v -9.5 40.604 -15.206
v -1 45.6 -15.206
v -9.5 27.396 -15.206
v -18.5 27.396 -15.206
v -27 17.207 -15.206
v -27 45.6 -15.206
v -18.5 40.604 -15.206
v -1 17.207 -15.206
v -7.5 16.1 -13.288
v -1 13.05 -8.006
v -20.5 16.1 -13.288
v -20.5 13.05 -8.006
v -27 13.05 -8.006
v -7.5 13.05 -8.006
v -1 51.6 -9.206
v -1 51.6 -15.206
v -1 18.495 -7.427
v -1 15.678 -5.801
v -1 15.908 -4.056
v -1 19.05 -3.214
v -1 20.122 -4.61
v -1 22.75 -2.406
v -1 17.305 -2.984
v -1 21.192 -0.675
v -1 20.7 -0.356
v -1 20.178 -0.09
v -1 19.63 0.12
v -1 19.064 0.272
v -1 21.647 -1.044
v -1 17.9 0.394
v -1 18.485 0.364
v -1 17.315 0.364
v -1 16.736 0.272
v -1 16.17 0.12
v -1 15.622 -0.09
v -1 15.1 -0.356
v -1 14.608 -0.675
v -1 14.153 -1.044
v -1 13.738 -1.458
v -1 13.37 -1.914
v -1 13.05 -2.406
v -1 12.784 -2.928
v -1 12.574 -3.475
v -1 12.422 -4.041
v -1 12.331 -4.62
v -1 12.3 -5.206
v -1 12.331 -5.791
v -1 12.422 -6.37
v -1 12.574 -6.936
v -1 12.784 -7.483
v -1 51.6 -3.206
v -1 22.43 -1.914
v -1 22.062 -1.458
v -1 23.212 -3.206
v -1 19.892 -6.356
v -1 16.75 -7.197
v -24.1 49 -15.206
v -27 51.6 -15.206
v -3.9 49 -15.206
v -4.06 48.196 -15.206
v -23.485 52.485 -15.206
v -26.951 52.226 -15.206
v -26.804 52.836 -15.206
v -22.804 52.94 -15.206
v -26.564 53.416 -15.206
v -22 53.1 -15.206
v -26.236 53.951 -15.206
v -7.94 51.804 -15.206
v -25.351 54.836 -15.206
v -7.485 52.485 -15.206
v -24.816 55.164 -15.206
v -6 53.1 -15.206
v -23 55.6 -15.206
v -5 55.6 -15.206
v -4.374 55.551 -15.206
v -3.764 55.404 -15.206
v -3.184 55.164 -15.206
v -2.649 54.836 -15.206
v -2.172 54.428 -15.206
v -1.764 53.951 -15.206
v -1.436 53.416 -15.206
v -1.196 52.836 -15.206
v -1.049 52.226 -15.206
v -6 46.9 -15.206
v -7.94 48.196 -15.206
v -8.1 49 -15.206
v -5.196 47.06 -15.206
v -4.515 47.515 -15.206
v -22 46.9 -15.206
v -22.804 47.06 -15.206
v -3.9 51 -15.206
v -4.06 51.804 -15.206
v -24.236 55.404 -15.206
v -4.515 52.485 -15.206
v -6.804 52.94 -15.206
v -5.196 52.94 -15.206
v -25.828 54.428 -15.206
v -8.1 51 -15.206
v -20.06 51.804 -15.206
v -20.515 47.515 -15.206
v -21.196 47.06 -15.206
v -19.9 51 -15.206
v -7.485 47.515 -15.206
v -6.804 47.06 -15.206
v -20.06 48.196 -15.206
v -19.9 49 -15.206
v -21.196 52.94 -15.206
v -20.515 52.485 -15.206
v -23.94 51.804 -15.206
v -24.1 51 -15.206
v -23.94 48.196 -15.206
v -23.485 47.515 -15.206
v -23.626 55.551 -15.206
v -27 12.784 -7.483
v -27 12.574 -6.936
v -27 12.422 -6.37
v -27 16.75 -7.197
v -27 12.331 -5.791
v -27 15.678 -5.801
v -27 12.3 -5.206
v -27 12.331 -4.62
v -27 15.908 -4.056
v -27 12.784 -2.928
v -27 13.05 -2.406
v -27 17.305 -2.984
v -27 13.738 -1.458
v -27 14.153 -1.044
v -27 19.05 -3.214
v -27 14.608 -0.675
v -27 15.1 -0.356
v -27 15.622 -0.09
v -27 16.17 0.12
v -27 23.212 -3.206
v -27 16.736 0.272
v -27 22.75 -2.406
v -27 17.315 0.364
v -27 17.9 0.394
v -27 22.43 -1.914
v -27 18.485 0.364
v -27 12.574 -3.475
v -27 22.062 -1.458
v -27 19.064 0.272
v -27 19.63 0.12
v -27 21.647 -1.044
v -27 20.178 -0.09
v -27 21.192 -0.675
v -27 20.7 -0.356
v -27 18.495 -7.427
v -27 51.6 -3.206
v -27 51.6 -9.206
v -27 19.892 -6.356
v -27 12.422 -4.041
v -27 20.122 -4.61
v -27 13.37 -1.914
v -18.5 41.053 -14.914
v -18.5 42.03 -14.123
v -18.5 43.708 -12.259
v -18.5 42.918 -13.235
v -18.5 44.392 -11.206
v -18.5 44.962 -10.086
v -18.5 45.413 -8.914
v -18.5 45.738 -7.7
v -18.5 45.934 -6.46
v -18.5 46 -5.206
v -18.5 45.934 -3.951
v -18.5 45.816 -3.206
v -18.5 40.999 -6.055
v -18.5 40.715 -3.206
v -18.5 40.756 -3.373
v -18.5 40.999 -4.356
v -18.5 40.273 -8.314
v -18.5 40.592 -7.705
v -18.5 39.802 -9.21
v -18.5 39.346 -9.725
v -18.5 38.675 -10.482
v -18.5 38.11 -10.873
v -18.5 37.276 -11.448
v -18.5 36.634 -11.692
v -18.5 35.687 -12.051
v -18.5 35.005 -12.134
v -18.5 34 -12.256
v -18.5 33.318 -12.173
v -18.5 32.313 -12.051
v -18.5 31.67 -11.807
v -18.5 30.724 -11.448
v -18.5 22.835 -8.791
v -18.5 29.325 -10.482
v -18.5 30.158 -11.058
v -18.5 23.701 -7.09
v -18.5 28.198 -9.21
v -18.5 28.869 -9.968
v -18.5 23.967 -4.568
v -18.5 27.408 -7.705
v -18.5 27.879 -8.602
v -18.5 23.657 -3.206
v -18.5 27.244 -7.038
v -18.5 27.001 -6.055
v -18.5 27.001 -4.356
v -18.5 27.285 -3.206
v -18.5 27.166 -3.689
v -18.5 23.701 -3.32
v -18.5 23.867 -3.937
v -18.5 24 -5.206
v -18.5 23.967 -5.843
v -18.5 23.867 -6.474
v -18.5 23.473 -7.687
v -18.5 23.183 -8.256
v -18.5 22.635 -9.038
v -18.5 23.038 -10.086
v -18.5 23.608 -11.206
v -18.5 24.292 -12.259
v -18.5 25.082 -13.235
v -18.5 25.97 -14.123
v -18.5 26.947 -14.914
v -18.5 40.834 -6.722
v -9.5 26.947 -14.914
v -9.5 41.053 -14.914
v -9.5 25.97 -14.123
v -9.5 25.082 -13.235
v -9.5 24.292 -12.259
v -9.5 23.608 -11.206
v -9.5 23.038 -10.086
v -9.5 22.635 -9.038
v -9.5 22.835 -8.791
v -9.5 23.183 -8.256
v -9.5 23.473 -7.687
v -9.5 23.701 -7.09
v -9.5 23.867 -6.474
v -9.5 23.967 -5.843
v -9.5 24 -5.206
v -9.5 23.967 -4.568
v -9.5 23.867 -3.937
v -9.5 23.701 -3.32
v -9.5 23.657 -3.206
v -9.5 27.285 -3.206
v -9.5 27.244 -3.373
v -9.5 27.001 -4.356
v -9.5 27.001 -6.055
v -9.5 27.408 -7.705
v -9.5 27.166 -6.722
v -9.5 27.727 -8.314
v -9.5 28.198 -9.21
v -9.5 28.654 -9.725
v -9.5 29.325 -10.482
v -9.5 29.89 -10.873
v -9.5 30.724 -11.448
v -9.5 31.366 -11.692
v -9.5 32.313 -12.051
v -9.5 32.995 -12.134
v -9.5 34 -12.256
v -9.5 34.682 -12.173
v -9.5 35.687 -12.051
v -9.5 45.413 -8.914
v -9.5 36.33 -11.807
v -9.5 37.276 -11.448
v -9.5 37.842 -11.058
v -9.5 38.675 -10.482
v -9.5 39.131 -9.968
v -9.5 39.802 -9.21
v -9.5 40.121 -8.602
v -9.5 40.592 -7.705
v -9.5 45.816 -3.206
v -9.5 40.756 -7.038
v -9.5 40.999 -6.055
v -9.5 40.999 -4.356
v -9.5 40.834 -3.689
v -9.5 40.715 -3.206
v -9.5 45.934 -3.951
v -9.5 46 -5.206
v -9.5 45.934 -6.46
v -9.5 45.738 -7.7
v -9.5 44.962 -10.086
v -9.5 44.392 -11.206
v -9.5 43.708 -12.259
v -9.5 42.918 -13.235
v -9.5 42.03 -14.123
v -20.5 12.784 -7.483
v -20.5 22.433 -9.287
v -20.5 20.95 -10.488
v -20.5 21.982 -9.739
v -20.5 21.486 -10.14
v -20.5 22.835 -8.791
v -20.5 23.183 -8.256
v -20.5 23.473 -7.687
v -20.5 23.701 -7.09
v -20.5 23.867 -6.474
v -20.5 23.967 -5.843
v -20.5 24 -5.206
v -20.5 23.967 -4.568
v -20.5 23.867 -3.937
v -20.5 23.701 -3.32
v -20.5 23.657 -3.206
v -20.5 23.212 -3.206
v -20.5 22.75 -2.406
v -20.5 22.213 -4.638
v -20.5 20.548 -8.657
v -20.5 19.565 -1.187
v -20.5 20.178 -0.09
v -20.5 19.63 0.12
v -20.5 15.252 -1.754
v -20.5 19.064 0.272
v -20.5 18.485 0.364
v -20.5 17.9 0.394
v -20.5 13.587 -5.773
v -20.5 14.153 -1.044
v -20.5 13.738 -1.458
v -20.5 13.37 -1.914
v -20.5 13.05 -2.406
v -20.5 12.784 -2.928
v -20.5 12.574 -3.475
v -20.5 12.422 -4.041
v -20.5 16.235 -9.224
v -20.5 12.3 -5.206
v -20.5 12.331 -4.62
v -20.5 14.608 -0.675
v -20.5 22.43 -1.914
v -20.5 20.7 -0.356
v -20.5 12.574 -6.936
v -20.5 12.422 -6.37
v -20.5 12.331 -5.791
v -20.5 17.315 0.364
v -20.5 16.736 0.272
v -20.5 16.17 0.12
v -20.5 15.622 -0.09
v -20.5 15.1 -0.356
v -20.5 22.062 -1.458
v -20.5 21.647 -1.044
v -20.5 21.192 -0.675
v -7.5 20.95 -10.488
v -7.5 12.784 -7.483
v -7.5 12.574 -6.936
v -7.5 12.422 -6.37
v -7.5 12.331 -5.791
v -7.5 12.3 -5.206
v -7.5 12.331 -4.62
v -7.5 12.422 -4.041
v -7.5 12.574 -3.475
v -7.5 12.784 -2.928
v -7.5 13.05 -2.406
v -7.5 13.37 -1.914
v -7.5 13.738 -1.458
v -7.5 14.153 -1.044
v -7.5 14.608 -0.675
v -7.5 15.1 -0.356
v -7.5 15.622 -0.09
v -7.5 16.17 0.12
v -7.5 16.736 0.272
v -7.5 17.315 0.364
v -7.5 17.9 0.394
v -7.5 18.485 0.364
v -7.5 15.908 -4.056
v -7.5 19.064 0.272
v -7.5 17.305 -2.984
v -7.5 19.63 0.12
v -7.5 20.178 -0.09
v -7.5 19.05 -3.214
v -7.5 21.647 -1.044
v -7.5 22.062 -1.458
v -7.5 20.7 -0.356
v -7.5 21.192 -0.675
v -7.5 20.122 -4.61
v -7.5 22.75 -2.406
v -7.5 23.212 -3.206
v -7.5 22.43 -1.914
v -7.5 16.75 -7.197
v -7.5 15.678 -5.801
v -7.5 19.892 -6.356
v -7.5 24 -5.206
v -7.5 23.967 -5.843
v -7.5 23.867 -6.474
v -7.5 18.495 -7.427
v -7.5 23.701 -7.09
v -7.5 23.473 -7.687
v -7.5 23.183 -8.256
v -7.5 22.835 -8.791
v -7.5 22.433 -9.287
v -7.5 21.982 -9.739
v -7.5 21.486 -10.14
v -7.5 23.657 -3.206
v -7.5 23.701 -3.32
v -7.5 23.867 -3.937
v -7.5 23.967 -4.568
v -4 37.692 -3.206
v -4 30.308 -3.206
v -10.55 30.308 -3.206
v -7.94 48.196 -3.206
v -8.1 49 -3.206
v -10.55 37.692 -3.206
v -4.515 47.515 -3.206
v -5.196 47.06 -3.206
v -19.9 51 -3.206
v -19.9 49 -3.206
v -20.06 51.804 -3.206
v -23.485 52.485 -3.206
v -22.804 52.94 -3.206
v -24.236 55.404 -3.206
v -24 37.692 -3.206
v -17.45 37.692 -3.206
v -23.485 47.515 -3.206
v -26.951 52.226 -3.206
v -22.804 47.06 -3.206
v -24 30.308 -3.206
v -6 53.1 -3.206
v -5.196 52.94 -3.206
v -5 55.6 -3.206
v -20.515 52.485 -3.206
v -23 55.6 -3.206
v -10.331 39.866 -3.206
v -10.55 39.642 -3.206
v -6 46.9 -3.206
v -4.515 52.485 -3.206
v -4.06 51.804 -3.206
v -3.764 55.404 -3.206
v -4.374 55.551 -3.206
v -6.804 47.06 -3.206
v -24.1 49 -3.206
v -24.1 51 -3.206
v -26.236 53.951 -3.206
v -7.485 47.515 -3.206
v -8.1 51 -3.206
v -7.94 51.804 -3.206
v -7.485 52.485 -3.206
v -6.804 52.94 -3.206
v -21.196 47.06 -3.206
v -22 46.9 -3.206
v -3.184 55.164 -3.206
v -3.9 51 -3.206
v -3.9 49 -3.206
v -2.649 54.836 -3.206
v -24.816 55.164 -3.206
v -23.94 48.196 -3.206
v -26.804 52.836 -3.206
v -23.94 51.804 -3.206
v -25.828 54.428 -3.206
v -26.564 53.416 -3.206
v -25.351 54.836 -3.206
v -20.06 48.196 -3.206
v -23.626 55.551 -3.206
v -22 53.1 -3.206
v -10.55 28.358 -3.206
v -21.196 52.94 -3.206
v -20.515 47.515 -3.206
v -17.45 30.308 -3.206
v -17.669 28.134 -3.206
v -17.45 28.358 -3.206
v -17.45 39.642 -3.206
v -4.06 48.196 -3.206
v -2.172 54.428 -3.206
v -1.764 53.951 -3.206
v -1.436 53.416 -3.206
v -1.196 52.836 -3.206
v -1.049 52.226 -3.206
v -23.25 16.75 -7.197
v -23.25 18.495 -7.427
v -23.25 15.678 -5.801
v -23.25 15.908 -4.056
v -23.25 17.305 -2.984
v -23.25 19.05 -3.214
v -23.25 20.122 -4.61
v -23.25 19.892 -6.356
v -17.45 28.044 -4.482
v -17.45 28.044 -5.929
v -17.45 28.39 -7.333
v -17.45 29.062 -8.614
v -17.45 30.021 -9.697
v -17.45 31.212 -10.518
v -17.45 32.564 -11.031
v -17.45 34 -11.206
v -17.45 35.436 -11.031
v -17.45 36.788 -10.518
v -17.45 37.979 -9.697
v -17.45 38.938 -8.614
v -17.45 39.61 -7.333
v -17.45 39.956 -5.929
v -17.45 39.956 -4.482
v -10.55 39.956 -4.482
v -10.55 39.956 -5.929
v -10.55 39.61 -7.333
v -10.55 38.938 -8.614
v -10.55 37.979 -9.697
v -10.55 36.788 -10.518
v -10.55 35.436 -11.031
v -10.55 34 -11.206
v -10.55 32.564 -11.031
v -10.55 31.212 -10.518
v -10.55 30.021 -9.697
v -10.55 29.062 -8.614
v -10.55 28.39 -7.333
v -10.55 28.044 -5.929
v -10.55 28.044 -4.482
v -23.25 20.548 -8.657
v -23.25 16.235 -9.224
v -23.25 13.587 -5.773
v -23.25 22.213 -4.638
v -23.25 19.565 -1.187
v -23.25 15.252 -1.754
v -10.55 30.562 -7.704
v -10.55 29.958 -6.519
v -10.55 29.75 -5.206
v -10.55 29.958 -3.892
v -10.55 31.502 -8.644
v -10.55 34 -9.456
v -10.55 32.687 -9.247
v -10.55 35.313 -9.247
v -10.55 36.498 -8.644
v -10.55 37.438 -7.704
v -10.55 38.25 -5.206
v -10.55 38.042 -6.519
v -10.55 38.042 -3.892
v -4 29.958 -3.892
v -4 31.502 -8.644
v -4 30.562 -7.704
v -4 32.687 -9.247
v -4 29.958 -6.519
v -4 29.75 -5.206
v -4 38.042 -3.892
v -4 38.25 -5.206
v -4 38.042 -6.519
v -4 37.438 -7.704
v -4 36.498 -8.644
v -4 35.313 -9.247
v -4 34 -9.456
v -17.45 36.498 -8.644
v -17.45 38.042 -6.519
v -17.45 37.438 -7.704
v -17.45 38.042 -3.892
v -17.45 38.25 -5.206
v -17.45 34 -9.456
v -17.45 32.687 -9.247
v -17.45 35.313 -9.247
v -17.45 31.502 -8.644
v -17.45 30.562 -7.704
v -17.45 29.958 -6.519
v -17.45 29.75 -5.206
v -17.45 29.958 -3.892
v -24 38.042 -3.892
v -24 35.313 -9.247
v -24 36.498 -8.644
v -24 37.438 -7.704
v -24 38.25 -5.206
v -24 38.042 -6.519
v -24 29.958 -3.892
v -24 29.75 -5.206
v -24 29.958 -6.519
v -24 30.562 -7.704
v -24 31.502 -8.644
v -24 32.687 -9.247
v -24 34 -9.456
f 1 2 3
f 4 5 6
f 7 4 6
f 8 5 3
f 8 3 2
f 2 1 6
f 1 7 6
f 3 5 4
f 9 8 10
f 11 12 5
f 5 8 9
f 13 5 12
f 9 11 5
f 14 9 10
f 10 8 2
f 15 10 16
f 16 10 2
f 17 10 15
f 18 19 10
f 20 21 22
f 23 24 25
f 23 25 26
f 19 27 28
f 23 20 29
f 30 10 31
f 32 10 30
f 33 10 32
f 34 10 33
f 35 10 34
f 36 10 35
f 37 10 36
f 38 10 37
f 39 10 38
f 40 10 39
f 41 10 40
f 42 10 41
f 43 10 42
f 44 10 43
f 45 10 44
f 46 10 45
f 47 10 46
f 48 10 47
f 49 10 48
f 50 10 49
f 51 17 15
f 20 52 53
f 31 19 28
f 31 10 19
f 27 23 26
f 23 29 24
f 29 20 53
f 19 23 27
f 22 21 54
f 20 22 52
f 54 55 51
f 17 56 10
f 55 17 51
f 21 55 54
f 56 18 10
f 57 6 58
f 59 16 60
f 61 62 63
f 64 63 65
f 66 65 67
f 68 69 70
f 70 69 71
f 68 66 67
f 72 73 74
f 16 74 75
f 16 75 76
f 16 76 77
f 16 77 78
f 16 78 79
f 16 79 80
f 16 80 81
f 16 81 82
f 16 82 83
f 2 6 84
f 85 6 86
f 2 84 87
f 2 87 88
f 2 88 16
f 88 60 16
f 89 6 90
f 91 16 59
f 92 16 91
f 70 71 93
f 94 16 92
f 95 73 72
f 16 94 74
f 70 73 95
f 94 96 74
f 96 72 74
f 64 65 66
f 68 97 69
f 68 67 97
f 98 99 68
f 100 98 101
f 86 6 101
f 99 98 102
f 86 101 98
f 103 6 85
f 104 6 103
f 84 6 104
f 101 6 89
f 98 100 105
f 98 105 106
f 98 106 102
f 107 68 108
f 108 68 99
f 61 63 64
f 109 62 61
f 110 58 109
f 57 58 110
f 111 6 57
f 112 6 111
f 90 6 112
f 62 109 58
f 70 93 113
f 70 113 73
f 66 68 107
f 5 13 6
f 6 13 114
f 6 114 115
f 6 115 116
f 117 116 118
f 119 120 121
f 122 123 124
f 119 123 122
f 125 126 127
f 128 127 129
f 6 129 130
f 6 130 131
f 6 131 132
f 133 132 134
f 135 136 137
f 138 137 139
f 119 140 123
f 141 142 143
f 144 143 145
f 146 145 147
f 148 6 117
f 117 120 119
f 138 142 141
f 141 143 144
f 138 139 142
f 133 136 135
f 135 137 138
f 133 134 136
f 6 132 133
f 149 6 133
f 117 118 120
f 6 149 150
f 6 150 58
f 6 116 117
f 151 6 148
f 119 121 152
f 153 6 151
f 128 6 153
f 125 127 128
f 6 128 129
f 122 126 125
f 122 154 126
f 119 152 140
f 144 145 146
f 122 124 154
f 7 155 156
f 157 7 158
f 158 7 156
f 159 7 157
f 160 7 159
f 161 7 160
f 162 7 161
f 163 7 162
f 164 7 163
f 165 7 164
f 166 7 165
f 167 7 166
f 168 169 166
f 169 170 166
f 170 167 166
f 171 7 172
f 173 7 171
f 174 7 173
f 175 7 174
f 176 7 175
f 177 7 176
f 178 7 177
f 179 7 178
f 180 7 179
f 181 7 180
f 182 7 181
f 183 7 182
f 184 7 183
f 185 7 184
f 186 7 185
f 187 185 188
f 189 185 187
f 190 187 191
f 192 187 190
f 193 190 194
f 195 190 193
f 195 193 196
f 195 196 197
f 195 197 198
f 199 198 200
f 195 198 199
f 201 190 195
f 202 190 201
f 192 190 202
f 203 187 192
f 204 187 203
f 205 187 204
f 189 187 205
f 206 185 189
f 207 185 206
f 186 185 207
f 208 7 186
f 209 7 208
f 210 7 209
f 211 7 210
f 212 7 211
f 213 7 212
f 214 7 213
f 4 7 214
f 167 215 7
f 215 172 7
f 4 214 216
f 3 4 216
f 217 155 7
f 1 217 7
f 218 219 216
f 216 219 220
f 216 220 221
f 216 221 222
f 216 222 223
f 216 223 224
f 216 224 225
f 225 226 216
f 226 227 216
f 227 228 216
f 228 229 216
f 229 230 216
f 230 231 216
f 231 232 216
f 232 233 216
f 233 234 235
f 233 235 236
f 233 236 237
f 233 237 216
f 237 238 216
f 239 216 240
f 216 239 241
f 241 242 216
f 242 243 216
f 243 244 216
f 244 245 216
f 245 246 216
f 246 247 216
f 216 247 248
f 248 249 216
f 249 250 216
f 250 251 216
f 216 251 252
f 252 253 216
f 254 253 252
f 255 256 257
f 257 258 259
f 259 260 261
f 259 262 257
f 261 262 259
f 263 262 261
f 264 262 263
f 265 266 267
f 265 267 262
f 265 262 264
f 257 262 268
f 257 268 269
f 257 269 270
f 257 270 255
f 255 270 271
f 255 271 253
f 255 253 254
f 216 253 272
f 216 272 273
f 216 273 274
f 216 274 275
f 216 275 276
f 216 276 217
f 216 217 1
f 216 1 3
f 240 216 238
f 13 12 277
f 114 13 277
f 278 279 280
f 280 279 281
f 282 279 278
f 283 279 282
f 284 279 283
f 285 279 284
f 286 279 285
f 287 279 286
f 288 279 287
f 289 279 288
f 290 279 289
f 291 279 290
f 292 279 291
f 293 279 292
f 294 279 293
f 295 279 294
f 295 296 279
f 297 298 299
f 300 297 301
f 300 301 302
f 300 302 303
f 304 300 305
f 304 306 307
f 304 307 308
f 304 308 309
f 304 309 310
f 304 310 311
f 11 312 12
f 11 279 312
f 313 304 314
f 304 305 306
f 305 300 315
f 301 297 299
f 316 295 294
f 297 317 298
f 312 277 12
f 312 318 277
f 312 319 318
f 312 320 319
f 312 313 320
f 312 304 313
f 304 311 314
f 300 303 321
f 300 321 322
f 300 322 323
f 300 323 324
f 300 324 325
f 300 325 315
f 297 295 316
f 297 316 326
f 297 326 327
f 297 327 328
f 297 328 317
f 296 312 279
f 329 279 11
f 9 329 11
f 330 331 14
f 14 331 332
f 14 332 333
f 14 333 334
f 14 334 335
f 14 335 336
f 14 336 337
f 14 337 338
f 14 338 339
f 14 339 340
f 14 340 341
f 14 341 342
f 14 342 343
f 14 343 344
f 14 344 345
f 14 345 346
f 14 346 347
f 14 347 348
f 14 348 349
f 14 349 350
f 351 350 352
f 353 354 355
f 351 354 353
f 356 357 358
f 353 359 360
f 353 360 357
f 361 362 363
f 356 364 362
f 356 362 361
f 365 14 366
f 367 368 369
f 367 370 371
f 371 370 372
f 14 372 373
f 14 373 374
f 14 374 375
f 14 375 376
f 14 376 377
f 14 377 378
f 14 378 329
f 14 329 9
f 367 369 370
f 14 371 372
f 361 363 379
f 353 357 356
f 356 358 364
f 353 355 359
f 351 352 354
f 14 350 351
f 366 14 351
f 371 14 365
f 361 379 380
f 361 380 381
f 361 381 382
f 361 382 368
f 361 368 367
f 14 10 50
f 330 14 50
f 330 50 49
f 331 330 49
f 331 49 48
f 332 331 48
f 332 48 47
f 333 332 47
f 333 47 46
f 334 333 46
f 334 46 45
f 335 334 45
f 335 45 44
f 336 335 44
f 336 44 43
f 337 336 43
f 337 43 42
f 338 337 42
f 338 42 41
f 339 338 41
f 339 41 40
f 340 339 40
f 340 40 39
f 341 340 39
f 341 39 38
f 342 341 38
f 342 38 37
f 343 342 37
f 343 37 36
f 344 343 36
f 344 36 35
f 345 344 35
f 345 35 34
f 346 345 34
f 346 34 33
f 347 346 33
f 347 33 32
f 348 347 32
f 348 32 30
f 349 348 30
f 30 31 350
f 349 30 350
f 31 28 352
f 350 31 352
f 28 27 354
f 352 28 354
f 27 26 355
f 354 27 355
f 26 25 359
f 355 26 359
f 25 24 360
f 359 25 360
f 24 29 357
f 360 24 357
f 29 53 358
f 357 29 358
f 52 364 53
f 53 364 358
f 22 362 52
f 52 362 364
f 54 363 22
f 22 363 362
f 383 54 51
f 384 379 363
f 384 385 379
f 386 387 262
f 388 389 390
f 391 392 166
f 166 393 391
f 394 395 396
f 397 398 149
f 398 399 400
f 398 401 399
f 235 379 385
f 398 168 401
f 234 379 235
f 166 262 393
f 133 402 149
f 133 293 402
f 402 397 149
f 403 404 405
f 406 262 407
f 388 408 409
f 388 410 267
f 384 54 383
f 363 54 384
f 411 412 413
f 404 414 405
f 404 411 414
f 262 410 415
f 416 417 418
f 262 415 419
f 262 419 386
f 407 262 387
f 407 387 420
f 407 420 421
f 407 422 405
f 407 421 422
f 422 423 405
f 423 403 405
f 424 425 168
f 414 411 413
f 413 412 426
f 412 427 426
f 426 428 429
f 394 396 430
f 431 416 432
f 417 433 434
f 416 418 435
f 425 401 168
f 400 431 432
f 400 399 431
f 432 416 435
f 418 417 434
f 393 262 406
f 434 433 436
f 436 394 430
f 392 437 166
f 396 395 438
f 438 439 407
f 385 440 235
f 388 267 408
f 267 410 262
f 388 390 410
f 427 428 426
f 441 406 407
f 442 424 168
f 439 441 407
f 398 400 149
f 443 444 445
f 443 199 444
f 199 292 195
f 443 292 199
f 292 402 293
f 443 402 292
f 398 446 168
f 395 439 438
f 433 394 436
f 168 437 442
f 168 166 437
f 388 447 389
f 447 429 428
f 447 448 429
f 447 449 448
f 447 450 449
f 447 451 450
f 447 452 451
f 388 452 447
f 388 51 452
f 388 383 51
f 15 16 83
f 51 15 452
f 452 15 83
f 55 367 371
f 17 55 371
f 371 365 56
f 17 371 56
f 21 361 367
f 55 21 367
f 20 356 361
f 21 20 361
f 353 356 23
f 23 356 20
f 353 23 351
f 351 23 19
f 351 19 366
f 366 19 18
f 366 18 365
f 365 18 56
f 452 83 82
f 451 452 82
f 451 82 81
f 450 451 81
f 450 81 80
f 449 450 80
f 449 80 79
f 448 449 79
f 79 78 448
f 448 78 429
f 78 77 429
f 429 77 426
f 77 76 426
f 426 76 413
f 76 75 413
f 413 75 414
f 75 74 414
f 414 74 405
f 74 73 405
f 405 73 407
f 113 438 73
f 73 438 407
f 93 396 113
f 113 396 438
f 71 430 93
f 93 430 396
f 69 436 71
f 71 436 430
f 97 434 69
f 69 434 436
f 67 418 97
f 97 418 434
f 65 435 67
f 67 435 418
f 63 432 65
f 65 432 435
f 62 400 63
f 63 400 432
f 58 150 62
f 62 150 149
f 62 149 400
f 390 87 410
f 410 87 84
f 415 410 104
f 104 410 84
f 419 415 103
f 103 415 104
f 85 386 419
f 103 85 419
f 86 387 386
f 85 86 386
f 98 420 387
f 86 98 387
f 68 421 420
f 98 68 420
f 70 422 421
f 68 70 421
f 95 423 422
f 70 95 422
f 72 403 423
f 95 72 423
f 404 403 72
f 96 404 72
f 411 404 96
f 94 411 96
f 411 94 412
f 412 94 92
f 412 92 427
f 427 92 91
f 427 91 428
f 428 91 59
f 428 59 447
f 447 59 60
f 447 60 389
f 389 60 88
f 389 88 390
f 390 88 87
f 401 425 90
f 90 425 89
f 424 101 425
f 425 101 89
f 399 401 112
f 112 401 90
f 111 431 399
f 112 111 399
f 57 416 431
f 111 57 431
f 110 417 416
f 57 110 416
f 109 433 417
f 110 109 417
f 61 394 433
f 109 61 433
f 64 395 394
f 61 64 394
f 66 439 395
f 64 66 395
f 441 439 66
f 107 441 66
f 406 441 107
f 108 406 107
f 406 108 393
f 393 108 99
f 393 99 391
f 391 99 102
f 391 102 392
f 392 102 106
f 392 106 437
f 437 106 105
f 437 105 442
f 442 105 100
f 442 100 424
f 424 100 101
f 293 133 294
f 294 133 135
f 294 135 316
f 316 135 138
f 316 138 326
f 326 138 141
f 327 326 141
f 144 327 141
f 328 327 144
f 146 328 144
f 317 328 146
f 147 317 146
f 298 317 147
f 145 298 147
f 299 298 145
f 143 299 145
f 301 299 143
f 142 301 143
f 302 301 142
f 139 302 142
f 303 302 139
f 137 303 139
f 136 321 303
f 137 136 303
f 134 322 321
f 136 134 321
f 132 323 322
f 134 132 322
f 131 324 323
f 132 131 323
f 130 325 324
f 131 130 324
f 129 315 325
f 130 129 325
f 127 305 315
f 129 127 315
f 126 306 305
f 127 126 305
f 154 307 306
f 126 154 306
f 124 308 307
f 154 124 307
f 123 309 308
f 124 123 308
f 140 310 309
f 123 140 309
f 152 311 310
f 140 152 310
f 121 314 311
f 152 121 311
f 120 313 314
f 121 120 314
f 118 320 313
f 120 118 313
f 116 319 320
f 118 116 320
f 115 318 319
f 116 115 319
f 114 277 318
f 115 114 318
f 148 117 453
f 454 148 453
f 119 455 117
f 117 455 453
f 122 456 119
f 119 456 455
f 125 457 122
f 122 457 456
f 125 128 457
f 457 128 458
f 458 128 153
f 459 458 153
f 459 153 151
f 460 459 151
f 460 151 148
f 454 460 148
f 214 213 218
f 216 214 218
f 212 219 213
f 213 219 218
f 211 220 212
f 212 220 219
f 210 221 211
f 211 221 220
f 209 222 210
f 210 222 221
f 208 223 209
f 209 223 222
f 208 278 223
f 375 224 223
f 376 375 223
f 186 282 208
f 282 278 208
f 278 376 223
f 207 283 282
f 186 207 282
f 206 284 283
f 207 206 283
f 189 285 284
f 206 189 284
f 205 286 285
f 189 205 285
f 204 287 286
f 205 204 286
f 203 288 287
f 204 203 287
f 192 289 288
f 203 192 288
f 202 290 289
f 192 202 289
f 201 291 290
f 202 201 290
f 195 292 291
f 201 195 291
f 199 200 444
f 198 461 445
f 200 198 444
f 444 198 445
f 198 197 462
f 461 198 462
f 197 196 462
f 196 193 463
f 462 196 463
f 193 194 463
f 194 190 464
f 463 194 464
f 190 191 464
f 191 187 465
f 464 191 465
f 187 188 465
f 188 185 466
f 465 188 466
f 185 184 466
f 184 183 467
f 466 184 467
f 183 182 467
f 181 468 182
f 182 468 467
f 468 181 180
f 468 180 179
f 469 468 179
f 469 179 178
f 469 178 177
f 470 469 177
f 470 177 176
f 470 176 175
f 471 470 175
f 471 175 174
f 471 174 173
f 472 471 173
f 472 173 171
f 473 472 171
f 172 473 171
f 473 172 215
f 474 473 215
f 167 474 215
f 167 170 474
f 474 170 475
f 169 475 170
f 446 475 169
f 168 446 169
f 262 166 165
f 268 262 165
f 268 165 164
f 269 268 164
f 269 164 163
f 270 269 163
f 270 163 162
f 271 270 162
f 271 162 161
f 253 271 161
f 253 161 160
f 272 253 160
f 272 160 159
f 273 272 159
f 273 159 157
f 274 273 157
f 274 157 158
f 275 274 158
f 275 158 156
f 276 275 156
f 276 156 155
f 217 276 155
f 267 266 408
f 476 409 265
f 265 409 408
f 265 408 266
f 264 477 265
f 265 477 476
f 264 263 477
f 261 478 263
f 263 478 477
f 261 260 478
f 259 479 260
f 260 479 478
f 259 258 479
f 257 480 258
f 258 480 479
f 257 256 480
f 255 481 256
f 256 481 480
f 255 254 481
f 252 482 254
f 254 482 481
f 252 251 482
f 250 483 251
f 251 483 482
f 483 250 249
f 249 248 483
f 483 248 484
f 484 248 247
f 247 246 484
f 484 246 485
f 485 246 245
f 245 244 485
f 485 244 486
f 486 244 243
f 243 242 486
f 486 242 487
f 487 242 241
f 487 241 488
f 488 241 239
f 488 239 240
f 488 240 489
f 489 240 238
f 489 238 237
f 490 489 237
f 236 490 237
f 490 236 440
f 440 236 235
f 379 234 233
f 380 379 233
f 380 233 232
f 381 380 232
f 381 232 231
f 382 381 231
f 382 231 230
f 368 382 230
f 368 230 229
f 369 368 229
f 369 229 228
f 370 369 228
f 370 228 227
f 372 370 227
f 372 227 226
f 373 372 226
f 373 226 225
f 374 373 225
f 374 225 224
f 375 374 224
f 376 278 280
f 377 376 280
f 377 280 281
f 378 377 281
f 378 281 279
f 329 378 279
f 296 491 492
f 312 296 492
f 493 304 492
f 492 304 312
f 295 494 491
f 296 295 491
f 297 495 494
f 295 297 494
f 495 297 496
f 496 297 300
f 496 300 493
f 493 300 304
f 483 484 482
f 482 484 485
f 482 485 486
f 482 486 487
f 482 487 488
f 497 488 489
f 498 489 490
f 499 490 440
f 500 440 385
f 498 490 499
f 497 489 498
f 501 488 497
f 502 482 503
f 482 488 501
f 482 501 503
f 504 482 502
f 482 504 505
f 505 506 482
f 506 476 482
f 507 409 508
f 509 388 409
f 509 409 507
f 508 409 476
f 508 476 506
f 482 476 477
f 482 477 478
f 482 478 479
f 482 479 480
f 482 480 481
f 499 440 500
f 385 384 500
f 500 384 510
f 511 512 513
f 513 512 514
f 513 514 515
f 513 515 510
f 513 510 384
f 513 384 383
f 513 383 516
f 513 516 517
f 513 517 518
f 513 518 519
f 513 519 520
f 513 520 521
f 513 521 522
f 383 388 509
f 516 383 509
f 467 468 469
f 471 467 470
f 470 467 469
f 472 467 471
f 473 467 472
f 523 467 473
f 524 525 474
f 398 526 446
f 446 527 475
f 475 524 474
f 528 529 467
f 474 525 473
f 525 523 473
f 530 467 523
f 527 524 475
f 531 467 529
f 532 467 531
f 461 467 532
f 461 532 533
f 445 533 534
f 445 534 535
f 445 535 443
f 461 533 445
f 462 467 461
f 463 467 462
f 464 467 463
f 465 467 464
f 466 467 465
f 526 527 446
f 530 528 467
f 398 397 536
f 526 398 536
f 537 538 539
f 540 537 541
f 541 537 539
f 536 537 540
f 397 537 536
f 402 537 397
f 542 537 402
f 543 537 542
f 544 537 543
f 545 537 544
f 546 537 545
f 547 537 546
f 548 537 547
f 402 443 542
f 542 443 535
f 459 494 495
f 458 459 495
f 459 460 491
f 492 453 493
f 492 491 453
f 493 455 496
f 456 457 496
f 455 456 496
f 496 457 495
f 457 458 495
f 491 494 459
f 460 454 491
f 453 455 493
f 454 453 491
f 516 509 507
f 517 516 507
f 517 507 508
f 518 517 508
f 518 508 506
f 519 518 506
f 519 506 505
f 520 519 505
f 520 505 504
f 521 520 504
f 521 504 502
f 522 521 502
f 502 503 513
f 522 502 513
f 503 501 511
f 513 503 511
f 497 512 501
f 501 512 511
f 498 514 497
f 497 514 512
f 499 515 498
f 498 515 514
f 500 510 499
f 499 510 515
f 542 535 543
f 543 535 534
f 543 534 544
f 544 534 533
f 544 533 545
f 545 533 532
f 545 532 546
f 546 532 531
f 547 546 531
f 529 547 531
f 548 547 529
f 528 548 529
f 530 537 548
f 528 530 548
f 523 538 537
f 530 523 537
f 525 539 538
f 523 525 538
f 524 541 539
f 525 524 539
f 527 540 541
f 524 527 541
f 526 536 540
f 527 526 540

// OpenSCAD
// authors:  thigiverse (link), l. miller, f. beachler
// see (link) for GPL license

// TODO move to a config SCAD, see other TODOs
variant=0; //0 for metric
//variant=1; //1 for SAE
if(variant==0){
echo("variant: metric");
}else if(variant==1){
echo("variant: sae");
} else{
echo("WARNING: INVALID CONFIGURATION");
}

vars=[
//[m8_dia, m8_nut, m4_dia, m4_nut, m3_dia, m3_nut, bush_dia, mot_shaft, bush_rod, bush_outerdia, bush_length]
[9,16.4,4.2,8.3,3.2,7.2,11,5.3,8,16,11],//metric
[9,15.7,5.5,10.6,5.5,10.6,11.5,5.3,7.9375,16,11]//SAE
];

//DO NOT TOUCH THIS SECTION!
m8_diameter = vars[variant][0];
m8_nut_diameter = vars[variant][1];
m4_diameter = vars[variant][2];
m4_nut_diameter = vars[variant][3];
m3_diameter = vars[variant][4];
m3_nut_diameter = vars[variant][5];

motor_mount_translation=[50.5,34,0];

608_diameter=22;
echo(608_diameter);

filament_diameter=3;
filament_feed_hole_offset=filament_diameter+0.5;

wade_block_depth=28;

gear_separation=7.4444+32.0111+0.25;

filament_pinch=[
	motor_mount_translation[0]-gear_separation-filament_feed_hole_offset-filament_diameter/2,
	motor_mount_translation[1],
	wade_block_depth/2];
idler_axis=filament_pinch-[608_diameter/2,0,0];
idler_fulcrum_offset=608_diameter/2+3.5+m3_diameter/2;
idler_fulcrum=idler_axis-[0,idler_fulcrum_offset,0];
idler_fulcrum_hole_r=m4_diameter / 2 + 0.2;
idler_fulcrum_captive_nut_r=m4_nut_diameter / 2 + 0.2;
idler_fulcrum_captive_nut_thickness=3.75;
idler_corners_radius=4; 
idler_height=12;
idler_608_diameter=608_diameter+2;
idler_608_height=9;
idler_mounting_hole_across=8;
idler_mounting_hole_up=15;
idler_short_side=wade_block_depth-2;
idler_hinge_r=m4_diameter/2+3.5;
idler_hinge_width=6.5;
idler_end_length=(idler_height-2)+5;
idler_mounting_hole_diameter=m4_diameter;
idler_mounting_hole_elongation=2;
idler_long_top=idler_mounting_hole_up+idler_mounting_hole_diameter/2+idler_mounting_hole_elongation+2.5;
idler_long_bottom=idler_fulcrum_offset;
idler_long_side=idler_long_top+idler_long_bottom;

rotate([0, -90, 0]) wadeidler();

// TODO parametrize
module wadeidler() {
	difference() {
		union() {
			//The idler block.
			translate(idler_axis+[-idler_height/2+2,+idler_long_side/2-idler_long_bottom,0])
			cube([idler_height,idler_long_side,idler_short_side],center=true);

			// The fulcrum Hinge
			translate(idler_fulcrum)
			rotate([0,0,-30]) {
				cylinder(h=idler_short_side,r=idler_hinge_r,center=true,$fn=60);
				translate([-idler_end_length/2,0,0])
					cube([idler_end_length,idler_hinge_r*2,idler_short_side],center=true);
			}		
		}

		//Back of idler.
		translate(idler_axis+[-idler_height/2+2-idler_height, idler_long_side/2-idler_long_bottom-10,0])
			cube([idler_height,idler_long_side,idler_short_side],center=true);

		//Slot for idler fulcrum mount.
		translate(idler_fulcrum)
		{
			cylinder(h=idler_short_side-2*idler_hinge_width,
				r=idler_hinge_r+0.5,center=true,$fn=60);
			rotate(-30)
				translate([0,-idler_hinge_r-0.5,0])
					cube([idler_hinge_r*2+1,idler_hinge_r*2+1, idler_short_side-2*idler_hinge_width],center=true);
		}

		//Bearing cutout.
		translate(idler_axis) {
			difference() {
				cylinder(h=idler_608_height,r=idler_608_diameter/2,
					center=true,$fn=60);
				for (i=[0,1])
					rotate([180*i,0,0])
						translate([0,0,6.9/2])
							cylinder(r1=12/2,r2=16/2,h=2);
			}
			cylinder(h=idler_short_side-6,r=m8_diameter/2-0.25/*Tight*/,
				center=true,$fn=20);
		}

		//Fulcrum hole.
		translate(idler_fulcrum)
			rotate(360/12)
				cylinder(h=idler_short_side+2,r=idler_fulcrum_hole_r,center=true,$fn=8);
		//Nut trap for fulcrum screw.
		translate(idler_fulcrum+[0,0,idler_short_side/2-idler_hinge_width-1])
			rotate(360/16)
				cylinder(h=idler_fulcrum_captive_nut_thickness,r=idler_fulcrum_captive_nut_r,$fn=6);

		for(idler_screw_hole=[-1,1])
			translate(idler_axis+[2-idler_height,0,0]) {
				//Screw Holes.
				translate([-1,idler_mounting_hole_up, idler_screw_hole*idler_mounting_hole_across])
				rotate([0,90,0]) {
					cylinder(r=idler_mounting_hole_diameter/2,h=idler_height+2,$fn=16);
					translate([0,idler_mounting_hole_elongation,0])
						cylinder(r=idler_mounting_hole_diameter/2,h=idler_height+2,$fn=16);
					translate([-idler_mounting_hole_diameter/2,0,0])
						cube([idler_mounting_hole_diameter,idler_mounting_hole_elongation, idler_height+2]);
				}

			// Rounded corners.
			render()
				translate([idler_height/2,idler_long_top, idler_screw_hole*(idler_short_side/2)])
					difference() {
						translate([0,-idler_corners_radius/2+0.5,-idler_screw_hole*(idler_corners_radius/2-0.5)])
						cube([idler_height+2,idler_corners_radius+1,idler_corners_radius+1], center=true);
						rotate([0,90,0])
							translate([idler_screw_hole*idler_corners_radius,-idler_corners_radius,0])
								cylinder(h=idler_height+4,r=idler_corners_radius,center=true,$fn=40);
					}
			}
	}
}
